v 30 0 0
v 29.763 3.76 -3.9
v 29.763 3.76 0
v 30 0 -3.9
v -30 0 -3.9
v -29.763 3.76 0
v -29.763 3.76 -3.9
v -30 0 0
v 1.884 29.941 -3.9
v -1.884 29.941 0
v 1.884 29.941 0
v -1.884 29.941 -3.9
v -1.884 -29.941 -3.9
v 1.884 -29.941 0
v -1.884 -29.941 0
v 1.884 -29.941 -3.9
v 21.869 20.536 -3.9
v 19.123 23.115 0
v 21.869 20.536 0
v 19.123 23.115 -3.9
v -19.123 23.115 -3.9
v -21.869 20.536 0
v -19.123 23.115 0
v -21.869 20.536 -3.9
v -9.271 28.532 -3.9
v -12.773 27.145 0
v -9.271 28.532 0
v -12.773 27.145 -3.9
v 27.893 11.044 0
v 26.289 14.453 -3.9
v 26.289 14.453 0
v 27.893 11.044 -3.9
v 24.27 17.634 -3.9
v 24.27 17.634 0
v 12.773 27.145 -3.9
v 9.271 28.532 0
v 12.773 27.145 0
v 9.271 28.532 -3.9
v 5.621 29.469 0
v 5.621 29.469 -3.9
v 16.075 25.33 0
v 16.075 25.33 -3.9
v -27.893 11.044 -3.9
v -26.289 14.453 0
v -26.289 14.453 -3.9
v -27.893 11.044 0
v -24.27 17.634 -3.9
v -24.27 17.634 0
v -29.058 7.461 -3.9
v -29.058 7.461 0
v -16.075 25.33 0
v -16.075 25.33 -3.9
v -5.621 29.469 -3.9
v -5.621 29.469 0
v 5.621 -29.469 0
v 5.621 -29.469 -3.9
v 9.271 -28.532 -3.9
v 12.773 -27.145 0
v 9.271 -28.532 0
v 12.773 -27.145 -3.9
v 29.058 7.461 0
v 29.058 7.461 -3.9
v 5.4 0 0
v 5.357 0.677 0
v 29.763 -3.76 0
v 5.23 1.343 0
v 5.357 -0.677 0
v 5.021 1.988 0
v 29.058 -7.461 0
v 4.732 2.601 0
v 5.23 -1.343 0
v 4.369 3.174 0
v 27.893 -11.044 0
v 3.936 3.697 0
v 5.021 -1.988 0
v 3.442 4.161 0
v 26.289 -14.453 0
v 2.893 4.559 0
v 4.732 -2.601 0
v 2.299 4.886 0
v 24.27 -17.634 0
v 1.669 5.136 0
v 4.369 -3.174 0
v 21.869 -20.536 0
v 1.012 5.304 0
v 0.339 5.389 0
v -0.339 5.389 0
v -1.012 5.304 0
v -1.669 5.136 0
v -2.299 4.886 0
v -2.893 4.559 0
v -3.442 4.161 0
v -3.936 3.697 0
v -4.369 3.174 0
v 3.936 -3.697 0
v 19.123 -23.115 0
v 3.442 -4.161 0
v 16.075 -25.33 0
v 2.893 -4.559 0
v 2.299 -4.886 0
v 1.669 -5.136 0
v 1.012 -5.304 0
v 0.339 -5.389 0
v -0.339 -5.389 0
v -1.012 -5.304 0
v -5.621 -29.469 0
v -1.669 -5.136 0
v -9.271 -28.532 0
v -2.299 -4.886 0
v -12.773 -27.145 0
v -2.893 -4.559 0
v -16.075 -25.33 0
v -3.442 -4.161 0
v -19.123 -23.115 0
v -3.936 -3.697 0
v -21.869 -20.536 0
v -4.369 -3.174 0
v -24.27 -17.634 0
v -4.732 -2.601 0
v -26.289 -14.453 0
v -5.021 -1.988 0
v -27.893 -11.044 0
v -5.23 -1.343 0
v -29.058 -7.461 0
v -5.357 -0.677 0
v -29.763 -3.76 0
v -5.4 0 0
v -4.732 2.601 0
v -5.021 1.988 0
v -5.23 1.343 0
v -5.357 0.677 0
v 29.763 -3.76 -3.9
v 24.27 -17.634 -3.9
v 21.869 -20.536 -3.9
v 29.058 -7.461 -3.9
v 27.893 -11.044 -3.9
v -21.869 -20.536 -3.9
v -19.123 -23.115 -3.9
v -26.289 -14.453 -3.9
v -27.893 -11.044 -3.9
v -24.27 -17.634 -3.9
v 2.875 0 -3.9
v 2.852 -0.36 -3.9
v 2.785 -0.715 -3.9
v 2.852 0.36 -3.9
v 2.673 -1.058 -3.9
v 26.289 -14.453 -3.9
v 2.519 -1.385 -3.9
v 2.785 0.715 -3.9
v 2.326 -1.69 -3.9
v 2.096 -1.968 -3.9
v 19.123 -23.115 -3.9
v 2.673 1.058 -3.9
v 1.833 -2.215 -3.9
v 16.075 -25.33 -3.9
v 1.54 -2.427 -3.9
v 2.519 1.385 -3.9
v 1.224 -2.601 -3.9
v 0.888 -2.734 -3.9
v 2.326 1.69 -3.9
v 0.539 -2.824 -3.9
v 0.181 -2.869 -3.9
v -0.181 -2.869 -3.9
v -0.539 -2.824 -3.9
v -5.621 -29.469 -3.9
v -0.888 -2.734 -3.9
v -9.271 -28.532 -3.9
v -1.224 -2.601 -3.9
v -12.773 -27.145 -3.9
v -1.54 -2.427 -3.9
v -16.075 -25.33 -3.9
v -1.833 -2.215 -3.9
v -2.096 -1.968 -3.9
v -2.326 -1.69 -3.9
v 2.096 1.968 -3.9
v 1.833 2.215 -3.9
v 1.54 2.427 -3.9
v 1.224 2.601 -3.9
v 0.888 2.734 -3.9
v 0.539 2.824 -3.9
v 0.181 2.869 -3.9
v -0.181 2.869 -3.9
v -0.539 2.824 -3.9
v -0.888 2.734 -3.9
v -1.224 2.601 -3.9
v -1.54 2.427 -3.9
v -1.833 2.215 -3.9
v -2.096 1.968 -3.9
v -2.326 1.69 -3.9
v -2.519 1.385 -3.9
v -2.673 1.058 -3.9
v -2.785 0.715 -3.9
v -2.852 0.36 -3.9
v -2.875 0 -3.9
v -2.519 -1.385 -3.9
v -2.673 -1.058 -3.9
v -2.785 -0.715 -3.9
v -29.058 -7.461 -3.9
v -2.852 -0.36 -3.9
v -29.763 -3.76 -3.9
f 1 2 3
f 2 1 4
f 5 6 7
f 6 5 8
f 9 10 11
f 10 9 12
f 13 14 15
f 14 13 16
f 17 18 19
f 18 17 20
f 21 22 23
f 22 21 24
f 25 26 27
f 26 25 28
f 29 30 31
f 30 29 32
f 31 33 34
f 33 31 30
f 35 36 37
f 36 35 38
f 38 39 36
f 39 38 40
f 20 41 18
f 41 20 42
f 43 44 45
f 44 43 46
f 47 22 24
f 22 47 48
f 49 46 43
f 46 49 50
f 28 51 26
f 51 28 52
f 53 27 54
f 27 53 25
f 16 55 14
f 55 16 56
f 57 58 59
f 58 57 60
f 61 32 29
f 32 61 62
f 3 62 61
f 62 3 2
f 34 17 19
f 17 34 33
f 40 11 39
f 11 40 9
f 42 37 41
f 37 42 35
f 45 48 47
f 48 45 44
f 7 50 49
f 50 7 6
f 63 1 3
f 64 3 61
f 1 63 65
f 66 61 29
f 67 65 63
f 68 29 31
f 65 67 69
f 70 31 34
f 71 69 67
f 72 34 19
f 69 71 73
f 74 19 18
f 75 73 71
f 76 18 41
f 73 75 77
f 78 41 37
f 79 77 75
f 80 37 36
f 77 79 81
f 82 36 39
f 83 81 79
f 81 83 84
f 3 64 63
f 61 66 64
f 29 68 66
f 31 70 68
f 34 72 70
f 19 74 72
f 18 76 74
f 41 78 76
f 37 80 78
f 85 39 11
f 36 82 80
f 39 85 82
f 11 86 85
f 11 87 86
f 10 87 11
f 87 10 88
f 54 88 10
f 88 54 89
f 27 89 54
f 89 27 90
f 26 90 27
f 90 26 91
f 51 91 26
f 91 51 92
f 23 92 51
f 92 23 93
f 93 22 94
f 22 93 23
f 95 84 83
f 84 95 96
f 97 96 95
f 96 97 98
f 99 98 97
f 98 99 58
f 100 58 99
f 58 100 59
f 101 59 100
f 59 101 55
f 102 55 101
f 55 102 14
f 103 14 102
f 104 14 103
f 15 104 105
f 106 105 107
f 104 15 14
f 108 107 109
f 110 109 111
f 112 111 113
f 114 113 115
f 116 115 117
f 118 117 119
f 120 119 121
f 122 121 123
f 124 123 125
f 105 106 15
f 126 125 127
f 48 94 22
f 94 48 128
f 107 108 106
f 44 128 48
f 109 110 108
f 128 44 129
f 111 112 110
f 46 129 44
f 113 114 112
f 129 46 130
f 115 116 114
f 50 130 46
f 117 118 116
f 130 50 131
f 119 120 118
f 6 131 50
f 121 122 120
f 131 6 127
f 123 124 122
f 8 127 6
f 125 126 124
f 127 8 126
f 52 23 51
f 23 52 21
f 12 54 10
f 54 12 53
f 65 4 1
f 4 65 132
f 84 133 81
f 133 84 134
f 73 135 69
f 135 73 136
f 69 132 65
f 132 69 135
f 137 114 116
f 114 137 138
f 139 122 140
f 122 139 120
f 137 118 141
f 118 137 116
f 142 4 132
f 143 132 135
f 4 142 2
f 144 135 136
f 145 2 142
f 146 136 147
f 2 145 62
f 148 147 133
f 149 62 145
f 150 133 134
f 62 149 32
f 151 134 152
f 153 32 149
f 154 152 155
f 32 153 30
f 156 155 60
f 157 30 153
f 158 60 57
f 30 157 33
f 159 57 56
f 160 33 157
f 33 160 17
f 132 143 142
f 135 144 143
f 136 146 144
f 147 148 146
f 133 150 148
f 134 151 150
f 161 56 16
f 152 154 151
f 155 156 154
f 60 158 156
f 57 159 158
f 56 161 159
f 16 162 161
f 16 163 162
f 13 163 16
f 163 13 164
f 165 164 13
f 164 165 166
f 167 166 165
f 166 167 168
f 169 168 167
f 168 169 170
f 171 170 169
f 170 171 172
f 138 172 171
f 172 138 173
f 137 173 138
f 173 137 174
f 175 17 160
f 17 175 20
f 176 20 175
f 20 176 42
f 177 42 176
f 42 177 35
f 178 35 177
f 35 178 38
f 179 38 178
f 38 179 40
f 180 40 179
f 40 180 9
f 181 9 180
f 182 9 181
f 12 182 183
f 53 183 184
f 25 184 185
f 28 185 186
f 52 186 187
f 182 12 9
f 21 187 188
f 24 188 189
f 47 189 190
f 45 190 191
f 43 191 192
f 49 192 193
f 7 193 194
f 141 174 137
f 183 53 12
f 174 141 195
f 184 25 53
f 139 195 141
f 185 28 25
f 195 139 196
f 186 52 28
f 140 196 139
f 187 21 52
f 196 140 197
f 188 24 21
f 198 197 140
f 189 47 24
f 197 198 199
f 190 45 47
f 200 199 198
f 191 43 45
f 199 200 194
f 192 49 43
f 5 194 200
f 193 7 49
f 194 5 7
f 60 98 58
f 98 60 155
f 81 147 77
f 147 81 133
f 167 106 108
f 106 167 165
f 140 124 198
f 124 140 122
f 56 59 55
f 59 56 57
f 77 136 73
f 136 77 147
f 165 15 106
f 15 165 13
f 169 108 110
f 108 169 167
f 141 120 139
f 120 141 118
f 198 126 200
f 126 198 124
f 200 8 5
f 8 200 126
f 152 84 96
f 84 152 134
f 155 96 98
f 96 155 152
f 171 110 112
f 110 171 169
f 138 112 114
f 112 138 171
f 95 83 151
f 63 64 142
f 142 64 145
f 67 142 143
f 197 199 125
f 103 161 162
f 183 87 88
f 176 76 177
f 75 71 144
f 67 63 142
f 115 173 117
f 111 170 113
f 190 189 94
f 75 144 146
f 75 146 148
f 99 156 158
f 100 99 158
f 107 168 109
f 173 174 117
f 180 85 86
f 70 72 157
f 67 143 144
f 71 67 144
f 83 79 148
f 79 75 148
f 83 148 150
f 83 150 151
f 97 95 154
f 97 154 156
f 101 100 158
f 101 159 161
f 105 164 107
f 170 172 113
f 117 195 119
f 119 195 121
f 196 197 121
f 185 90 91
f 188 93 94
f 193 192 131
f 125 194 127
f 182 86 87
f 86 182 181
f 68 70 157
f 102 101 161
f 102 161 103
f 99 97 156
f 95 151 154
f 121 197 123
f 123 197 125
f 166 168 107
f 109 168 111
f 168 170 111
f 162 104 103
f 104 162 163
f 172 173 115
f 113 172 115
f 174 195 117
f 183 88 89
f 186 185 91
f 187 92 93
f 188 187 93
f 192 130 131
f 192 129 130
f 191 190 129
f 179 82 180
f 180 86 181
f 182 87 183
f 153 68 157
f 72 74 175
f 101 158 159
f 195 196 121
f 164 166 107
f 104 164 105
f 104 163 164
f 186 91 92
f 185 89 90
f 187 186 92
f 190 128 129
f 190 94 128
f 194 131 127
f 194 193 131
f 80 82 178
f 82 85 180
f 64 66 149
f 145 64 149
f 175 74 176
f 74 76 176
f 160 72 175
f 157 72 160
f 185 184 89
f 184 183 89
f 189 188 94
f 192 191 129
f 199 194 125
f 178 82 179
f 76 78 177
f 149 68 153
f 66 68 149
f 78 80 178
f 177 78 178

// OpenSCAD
$fn = 50;


difference() {
	union() {
		translate(v = [0, 0, -3.9000000000]) {
			cylinder(h = 3.9000000000, r = 30.0000000000);
		}
		translate(v = [0, 0, -3.9000000000]) {
			cylinder(h = 3.9000000000, r = 2.8750000000);
		}
	}
	union() {
		translate(v = [0, 0, 0]) {
			rotate(a = [0, 0, 0]) {
				difference() {
					union() {
						#translate(v = [0, 0, -3.9000000000]) {
							cylinder(h = 3.9000000000, r = 2.6000000000);
						}
						#translate(v = [0, 0, -3.9000000000]) {
							cylinder(h = 3.9000000000, r1 = 2.8750000000, r2 = 5.4000000000);
						}
						#translate(v = [0, 0, -3.9000000000]) {
							cylinder(h = 3.9000000000, r = 2.8750000000);
						}
						#translate(v = [0, 0, -3.9000000000]) {
							cylinder(h = 3.9000000000, r = 2.6000000000);
						}
					}
					union();
				}
			}
		}
	}
}
